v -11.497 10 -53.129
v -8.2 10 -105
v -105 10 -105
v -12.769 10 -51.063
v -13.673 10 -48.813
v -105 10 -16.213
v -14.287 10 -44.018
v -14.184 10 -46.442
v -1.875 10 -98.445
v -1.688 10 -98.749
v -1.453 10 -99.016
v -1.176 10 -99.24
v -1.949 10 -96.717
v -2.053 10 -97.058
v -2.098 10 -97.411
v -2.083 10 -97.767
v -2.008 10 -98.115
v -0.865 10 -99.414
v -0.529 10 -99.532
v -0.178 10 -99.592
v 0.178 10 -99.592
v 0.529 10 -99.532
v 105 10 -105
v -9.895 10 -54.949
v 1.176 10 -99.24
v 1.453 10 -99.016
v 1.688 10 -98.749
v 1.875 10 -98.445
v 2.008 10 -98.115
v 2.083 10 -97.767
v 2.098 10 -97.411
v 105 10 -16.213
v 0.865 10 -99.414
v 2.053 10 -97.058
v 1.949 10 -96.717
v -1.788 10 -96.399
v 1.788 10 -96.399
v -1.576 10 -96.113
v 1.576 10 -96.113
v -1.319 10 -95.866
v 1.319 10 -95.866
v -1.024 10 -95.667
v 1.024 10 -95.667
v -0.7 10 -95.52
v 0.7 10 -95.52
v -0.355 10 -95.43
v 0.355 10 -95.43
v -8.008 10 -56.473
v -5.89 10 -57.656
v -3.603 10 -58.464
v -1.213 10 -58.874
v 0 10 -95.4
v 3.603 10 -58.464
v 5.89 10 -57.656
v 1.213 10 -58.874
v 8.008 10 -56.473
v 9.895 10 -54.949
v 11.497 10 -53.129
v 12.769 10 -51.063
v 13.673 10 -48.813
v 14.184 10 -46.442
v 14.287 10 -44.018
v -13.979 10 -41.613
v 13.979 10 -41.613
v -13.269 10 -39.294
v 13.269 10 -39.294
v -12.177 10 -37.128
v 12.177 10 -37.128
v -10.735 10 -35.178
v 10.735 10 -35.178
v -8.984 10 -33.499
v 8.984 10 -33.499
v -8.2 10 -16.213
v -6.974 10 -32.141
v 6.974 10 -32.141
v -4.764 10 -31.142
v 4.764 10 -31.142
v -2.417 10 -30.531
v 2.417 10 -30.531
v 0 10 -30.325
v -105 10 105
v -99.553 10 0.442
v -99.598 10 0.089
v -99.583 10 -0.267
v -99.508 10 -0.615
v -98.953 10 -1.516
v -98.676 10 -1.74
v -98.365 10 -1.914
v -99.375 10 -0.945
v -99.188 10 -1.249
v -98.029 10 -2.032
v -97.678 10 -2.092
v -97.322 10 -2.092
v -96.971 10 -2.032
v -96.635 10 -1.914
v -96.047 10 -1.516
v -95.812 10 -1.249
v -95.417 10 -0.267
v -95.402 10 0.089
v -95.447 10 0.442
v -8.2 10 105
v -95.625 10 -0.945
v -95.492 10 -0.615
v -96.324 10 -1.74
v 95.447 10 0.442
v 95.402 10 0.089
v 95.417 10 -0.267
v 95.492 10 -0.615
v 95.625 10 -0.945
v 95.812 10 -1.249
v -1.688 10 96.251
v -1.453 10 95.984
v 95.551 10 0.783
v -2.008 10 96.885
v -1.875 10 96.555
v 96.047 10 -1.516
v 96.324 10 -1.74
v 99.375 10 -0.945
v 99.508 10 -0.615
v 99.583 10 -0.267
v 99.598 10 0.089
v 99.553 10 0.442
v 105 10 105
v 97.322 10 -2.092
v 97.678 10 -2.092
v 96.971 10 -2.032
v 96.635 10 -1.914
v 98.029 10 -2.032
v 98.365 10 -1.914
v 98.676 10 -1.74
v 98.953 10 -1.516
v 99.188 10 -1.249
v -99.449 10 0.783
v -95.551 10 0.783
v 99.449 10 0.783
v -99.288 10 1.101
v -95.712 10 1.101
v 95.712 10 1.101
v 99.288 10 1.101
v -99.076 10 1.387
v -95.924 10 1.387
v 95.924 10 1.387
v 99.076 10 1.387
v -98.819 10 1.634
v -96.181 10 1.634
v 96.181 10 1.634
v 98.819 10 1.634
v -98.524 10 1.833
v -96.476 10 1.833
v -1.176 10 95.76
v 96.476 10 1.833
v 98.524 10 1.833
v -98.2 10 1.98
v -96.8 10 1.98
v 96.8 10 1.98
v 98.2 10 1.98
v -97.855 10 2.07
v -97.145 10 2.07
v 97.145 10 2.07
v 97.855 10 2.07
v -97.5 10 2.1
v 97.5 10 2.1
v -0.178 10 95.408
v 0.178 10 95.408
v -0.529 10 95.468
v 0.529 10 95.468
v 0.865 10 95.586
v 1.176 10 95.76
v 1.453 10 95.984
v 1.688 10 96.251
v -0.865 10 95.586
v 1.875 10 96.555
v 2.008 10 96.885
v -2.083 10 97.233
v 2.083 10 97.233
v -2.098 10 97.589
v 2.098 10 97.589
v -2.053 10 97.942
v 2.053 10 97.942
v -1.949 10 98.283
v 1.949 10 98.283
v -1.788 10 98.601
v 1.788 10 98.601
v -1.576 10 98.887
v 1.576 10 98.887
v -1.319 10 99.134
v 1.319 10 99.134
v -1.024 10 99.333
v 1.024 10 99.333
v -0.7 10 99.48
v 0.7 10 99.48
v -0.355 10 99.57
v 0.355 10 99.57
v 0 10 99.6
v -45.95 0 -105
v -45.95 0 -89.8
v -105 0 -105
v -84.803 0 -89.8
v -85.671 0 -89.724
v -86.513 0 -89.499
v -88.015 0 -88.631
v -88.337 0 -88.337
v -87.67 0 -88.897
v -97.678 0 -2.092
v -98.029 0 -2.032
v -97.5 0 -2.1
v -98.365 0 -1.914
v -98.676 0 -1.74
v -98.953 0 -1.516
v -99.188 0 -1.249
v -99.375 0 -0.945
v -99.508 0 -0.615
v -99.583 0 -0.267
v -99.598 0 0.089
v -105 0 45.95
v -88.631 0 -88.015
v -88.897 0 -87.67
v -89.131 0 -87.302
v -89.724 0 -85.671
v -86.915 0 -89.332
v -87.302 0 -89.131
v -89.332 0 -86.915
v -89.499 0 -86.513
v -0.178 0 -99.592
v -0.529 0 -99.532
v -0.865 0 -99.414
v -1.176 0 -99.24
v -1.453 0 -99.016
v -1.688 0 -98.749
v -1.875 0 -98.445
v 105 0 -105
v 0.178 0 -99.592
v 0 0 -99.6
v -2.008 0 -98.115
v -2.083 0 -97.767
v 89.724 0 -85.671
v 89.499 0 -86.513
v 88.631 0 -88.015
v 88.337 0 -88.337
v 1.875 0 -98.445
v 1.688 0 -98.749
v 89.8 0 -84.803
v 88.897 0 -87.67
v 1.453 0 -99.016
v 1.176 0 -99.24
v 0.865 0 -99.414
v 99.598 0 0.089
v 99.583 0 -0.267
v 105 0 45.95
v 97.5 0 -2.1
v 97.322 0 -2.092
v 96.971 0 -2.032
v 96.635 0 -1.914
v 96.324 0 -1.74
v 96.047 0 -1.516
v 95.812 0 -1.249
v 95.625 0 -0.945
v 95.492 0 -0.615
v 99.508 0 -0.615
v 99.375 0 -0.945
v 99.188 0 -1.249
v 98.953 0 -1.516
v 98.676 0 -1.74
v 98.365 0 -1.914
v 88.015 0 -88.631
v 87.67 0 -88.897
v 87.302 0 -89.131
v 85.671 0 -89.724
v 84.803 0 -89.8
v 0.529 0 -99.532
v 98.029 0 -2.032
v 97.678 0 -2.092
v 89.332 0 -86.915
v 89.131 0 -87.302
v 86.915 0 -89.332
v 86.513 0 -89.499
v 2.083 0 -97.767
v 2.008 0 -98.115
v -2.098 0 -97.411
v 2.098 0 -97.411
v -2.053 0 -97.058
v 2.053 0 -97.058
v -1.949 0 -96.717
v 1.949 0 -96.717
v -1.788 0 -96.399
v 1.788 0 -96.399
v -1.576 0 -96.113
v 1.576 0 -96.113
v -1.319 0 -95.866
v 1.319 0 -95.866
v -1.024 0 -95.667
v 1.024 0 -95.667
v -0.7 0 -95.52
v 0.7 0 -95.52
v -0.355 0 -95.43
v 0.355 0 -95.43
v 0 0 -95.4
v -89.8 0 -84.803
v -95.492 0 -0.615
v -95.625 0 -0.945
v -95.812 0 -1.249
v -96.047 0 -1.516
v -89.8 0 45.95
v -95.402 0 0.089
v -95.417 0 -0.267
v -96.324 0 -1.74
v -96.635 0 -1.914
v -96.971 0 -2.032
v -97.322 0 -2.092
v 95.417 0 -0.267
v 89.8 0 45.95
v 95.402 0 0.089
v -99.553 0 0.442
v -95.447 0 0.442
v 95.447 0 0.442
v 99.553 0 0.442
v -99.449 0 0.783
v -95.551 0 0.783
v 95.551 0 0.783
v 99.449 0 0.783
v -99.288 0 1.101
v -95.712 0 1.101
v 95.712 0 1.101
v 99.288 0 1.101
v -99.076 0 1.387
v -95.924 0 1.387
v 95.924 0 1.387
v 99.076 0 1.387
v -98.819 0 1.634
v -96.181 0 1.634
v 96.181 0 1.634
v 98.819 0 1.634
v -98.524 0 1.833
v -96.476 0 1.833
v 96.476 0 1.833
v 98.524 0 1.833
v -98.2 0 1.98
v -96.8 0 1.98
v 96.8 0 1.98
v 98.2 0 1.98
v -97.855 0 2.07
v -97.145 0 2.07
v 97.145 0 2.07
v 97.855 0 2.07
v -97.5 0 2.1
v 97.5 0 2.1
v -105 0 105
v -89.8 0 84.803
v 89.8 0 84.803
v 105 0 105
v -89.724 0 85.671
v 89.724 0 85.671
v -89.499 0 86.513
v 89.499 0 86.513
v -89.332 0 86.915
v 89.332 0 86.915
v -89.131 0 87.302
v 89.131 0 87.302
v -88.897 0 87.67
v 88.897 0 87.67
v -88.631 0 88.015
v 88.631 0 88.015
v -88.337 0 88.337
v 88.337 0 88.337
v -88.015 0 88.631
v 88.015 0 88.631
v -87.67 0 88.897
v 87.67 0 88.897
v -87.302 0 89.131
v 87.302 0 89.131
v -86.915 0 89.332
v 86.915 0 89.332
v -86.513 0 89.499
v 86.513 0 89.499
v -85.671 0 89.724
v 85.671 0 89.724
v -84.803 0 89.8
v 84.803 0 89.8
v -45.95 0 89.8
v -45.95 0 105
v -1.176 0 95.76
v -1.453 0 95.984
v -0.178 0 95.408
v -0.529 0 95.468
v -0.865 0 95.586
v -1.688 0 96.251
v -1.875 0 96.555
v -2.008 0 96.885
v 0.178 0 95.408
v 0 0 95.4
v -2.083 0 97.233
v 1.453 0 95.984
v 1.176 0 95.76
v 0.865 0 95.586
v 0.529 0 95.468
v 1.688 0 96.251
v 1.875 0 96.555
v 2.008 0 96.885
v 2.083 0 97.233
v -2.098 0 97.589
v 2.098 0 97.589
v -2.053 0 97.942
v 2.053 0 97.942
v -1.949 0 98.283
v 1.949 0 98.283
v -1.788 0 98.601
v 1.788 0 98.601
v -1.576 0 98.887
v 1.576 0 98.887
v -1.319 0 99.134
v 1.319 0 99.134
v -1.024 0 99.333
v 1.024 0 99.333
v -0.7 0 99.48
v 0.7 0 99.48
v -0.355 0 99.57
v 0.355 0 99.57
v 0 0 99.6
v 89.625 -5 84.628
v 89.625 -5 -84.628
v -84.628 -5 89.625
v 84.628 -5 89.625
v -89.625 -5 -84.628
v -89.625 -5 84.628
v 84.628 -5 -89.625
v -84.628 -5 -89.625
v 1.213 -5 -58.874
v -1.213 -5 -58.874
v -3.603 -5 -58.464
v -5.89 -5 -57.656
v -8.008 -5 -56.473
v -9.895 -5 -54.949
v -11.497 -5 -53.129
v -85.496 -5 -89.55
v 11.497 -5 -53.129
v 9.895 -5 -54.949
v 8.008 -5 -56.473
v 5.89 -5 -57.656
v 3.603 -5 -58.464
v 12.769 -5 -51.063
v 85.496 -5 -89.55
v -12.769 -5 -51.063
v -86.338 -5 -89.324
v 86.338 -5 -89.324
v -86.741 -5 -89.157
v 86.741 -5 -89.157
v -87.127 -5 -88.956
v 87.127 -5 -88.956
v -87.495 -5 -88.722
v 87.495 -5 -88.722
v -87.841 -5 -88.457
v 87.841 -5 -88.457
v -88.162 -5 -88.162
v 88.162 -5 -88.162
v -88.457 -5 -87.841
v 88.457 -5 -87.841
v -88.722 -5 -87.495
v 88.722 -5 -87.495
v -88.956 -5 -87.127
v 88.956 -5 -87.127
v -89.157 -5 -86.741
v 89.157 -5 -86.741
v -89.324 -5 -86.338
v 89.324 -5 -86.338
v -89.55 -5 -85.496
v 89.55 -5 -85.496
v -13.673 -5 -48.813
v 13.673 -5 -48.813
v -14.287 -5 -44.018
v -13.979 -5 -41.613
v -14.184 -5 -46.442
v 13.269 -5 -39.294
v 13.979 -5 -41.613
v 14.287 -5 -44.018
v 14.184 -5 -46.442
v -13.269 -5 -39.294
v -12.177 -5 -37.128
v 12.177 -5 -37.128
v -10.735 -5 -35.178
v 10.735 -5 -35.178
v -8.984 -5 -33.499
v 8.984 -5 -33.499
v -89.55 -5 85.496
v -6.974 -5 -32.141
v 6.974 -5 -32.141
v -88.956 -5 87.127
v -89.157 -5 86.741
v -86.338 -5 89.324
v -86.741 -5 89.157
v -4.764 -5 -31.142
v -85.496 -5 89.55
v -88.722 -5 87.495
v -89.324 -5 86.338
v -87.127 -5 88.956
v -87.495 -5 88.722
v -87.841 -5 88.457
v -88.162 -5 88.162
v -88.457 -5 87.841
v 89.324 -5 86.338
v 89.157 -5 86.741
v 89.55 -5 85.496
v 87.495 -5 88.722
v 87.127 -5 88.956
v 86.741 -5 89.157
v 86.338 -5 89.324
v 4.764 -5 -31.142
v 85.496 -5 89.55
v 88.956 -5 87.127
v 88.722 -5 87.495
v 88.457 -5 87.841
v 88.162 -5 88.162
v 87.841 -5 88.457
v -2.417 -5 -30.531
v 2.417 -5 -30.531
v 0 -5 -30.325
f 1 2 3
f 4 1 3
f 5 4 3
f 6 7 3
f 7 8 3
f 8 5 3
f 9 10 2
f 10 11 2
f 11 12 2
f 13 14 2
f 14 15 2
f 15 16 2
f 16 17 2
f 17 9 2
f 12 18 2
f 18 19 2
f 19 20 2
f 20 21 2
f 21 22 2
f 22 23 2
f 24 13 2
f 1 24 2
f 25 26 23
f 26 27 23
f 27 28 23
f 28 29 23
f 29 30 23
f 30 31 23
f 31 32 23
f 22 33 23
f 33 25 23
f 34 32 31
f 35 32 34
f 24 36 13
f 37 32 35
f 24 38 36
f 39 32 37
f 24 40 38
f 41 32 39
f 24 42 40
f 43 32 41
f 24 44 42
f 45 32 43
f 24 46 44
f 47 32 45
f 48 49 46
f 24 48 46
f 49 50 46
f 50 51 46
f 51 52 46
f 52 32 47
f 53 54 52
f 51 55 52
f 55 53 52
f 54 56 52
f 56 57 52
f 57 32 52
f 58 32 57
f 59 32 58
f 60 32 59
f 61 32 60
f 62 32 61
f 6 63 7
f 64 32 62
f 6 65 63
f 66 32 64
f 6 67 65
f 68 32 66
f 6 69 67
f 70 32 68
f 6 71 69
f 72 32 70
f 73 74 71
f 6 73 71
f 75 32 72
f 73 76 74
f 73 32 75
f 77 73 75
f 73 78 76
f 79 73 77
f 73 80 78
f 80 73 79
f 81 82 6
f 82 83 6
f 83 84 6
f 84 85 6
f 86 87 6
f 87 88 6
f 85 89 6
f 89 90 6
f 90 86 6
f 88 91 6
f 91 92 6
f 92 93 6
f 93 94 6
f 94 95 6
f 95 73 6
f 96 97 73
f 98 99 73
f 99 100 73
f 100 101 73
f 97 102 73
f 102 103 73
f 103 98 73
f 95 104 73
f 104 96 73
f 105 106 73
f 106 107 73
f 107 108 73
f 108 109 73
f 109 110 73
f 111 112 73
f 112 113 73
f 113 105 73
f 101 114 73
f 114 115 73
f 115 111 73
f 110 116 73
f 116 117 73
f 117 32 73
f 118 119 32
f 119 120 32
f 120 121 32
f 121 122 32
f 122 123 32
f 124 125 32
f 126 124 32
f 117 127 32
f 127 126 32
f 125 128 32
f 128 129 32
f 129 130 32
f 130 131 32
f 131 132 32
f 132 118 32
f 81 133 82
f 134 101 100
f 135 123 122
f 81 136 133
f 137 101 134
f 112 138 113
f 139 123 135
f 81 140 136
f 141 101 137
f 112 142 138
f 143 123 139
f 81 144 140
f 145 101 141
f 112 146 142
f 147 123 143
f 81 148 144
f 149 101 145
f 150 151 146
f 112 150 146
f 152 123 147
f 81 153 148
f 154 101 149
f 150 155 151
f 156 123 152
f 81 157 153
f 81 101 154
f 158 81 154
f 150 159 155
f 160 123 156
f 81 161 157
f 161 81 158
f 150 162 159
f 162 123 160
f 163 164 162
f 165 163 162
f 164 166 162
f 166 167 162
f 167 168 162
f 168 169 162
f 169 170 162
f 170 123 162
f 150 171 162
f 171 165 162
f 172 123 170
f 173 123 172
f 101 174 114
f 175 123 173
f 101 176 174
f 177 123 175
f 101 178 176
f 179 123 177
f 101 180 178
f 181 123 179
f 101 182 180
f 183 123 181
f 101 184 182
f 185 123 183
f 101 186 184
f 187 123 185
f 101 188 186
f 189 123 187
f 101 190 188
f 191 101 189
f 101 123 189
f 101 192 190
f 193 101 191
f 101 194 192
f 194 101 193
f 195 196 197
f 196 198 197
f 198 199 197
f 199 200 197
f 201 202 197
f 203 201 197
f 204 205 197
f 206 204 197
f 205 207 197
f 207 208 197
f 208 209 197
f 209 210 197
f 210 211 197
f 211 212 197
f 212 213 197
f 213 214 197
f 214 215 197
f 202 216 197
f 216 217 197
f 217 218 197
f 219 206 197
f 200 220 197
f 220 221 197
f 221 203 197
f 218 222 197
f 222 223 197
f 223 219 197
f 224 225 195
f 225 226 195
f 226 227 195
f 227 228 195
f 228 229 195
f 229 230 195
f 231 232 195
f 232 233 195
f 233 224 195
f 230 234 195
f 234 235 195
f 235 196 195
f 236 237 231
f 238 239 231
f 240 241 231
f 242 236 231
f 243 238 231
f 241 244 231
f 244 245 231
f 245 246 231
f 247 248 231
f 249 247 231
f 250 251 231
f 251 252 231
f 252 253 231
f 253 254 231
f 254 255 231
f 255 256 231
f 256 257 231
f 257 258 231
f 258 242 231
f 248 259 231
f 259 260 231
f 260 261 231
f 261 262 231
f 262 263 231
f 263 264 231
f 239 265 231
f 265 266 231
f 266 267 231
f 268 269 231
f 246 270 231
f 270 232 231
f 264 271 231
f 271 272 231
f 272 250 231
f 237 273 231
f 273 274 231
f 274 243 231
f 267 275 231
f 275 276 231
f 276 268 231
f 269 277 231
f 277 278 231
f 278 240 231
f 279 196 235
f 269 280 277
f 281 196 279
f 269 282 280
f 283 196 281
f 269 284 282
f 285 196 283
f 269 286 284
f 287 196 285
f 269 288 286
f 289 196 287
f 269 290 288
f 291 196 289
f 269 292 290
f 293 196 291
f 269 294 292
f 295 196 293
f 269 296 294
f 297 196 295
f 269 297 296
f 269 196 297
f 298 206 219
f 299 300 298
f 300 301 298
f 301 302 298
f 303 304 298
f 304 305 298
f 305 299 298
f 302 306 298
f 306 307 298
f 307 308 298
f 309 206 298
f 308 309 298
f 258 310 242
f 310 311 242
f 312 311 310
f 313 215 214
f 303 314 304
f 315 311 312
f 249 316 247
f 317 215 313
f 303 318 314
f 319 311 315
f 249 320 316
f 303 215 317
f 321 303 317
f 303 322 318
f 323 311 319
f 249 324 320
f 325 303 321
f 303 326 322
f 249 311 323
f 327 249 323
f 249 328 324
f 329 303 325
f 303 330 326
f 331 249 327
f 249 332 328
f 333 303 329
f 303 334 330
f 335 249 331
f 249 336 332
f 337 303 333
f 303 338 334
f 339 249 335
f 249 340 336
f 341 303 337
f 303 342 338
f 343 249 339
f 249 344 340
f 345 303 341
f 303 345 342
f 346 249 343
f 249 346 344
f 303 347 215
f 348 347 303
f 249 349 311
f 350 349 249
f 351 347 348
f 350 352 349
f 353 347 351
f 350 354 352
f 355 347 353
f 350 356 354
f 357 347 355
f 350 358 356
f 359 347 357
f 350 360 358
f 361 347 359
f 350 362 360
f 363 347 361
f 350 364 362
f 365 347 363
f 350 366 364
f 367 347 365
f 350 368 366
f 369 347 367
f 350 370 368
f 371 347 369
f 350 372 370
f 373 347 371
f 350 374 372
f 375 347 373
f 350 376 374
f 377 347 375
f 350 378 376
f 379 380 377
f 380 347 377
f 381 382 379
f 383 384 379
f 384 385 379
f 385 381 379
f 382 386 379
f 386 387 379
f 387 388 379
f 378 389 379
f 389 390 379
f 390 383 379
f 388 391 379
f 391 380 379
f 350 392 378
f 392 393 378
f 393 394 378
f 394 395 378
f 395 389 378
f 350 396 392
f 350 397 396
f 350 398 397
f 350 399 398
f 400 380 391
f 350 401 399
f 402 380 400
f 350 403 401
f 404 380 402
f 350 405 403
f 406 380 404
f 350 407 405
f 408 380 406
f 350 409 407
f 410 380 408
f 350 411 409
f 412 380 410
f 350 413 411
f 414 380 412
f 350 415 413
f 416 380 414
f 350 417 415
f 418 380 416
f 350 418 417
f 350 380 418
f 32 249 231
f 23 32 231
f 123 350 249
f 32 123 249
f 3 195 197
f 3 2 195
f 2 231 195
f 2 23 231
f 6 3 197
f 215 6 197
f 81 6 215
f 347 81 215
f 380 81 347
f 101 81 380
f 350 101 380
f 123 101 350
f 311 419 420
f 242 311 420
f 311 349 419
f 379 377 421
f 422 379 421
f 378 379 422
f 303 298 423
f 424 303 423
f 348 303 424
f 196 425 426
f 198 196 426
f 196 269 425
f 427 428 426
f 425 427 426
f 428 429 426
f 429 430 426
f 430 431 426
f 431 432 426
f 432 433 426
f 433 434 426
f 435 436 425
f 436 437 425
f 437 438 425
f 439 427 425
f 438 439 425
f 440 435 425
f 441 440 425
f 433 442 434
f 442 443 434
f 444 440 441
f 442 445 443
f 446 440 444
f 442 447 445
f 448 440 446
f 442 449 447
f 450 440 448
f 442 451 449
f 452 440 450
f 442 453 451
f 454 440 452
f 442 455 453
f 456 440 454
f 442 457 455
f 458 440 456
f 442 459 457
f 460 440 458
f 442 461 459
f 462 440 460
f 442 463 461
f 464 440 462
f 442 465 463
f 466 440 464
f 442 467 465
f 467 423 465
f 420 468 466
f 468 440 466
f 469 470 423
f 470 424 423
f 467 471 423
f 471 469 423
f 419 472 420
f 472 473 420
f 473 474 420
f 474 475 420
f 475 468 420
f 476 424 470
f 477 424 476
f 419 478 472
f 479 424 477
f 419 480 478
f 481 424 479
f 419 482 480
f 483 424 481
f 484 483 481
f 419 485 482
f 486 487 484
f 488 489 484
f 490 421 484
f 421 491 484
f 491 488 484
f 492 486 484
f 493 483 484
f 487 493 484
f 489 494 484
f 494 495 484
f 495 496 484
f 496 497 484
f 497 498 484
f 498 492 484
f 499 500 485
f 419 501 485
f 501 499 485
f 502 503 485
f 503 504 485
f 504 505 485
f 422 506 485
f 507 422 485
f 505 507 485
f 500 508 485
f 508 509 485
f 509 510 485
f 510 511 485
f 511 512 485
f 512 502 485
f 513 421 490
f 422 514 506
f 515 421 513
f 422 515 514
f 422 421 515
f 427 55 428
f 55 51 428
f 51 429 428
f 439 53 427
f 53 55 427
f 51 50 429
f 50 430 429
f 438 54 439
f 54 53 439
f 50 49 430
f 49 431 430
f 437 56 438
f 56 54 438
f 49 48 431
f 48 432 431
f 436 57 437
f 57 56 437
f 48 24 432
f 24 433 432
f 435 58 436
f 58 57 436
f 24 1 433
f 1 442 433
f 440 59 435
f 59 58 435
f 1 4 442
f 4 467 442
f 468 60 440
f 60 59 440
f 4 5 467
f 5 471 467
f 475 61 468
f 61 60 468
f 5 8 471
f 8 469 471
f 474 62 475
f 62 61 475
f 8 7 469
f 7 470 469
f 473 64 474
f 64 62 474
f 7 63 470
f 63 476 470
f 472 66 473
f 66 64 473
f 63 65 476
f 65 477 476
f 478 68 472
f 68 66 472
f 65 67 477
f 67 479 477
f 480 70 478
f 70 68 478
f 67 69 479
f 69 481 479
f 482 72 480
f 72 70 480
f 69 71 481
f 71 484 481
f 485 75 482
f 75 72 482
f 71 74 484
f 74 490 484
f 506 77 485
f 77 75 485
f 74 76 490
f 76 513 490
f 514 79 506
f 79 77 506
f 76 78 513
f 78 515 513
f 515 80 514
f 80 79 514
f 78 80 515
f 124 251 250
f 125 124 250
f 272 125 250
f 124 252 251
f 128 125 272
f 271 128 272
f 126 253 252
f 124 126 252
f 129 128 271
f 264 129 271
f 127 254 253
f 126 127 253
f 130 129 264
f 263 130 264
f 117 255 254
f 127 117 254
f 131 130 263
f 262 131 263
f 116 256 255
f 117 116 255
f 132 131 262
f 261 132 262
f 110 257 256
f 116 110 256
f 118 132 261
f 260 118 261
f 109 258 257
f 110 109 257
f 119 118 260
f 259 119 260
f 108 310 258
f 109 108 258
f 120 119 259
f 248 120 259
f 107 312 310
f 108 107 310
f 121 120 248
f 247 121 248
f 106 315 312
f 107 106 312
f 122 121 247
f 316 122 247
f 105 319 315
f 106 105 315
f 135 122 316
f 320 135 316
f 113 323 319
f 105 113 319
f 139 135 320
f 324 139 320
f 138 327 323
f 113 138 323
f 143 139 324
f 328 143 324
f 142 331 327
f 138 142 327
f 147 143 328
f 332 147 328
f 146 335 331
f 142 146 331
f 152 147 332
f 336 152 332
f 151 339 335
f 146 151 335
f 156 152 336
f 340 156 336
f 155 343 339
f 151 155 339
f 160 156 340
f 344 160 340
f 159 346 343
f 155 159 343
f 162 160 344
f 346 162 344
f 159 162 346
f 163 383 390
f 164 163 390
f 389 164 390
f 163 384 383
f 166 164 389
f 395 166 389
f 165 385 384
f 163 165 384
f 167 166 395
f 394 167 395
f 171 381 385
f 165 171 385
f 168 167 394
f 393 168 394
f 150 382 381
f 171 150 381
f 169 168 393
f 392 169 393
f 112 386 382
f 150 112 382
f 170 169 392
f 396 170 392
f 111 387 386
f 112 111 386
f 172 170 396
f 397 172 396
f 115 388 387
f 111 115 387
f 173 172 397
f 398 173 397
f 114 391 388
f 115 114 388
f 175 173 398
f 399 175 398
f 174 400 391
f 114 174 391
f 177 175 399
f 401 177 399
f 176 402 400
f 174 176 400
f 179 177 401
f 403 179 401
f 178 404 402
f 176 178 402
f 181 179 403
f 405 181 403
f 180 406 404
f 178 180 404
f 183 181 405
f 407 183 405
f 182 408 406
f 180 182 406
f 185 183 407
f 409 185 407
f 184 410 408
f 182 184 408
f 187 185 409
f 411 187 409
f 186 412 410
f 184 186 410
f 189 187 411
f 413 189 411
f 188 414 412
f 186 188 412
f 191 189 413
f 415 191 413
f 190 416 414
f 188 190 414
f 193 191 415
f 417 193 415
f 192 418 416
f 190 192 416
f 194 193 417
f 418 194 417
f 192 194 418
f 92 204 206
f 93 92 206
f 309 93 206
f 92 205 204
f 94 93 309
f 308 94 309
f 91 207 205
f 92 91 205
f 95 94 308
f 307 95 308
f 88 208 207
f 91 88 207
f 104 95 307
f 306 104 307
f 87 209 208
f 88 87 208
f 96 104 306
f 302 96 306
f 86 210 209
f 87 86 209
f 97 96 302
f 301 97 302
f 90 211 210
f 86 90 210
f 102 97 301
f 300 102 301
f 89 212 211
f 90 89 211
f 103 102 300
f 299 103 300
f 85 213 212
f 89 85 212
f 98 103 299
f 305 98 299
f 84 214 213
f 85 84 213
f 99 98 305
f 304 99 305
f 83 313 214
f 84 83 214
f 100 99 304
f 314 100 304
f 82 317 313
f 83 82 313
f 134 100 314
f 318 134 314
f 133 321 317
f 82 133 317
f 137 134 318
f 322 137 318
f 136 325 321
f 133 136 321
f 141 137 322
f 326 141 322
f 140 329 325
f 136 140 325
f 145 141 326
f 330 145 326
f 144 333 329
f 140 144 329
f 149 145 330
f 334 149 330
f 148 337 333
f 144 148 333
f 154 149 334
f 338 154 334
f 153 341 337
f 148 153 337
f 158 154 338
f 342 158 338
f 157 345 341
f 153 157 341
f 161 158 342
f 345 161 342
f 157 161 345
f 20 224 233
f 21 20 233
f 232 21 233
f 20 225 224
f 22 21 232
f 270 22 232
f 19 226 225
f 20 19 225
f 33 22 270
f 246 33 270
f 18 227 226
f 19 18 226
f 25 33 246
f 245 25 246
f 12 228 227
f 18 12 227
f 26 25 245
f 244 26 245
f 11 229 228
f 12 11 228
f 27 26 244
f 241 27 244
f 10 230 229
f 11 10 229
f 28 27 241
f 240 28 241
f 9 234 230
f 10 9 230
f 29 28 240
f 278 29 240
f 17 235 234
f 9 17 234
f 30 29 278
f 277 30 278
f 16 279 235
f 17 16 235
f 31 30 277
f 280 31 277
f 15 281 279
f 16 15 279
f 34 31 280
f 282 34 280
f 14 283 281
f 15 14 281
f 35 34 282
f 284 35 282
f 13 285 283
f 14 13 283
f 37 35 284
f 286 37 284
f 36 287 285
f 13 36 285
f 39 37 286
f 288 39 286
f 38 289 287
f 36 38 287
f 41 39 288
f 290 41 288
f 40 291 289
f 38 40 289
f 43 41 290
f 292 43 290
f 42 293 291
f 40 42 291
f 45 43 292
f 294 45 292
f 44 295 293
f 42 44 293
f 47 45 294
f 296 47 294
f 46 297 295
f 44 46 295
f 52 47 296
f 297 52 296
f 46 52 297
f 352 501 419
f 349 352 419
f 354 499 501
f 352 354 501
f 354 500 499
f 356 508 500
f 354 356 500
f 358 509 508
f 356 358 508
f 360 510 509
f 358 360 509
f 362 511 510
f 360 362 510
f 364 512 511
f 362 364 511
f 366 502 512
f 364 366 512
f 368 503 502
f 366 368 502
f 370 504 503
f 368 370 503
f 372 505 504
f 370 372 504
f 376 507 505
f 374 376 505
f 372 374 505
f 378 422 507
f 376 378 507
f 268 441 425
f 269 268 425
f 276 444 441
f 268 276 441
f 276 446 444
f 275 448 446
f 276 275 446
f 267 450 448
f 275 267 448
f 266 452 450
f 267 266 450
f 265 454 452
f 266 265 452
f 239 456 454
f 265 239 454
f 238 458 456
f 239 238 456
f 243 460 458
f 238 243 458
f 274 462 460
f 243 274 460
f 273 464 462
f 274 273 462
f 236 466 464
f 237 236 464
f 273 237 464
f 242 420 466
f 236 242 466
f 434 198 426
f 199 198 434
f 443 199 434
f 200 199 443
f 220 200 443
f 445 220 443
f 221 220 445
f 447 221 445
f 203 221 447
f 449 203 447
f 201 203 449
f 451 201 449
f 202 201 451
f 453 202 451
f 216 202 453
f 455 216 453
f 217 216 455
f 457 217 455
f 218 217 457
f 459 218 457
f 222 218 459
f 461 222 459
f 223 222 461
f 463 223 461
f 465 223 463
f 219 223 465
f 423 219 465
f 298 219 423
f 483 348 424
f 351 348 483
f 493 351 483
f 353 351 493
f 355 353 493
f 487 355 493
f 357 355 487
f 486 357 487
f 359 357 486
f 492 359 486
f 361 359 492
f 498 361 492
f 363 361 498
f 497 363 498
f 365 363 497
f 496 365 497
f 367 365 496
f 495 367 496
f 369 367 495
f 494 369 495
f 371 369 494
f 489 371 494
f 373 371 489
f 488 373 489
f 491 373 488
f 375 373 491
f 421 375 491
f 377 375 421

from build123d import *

# Parameters (mm, degrees)
SKETCH2_W           = 210
SKETCH2_H           = 210
BOSS_EXTRUDE1_DEPTH = 10
SKETCH3_W           = 179.6
SKETCH3_H           = 179.6
BOSS_EXTRUDE2_DEPTH = 5
BOSS_EXTRUDE2_TAPER = 2
SKETCH4_R           = 14.3
CUT_EXTRUDE1_DEPTH  = 15
SKETCH6_R           = 2.1
CUT_EXTRUDE2_DEPTH  = 10
FILLET1_R           = 5


with BuildPart() as part:
    # Sketch2 → Boss-Extrude1 (new body)
    with BuildSketch(Plane(origin=(0, 0, 0), x_dir=(1, 0, 0), z_dir=(0, 1, 0))):
        Rectangle(SKETCH2_W, SKETCH2_H)
    extrude(amount=BOSS_EXTRUDE1_DEPTH)

    # Sketch3 → Boss-Extrude2 (add)
    with BuildSketch(Plane.XZ):
        Rectangle(SKETCH3_W, SKETCH3_H)
    extrude(amount=BOSS_EXTRUDE2_DEPTH, taper=BOSS_EXTRUDE2_TAPER)

    # Sketch4 → Cut-Extrude1 (cut)
    with BuildSketch(Plane(origin=(0, 10, 0), x_dir=(1, 0, 0), z_dir=(0, 1, 0))):
        with Locations((0, 44.625396153)):
            Circle(SKETCH4_R)
    extrude(amount=-CUT_EXTRUDE1_DEPTH, mode=Mode.SUBTRACT)

    # Sketch6 → Cut-Extrude2 (cut)
    with BuildSketch(Plane(origin=(0, 10, 0), x_dir=(1, 0, 0), z_dir=(0, 1, 0))):
        with Locations((0, 97.5)):
            Circle(SKETCH6_R)
        with Locations((-97.5, 0)):
            Circle(SKETCH6_R)
        with Locations((0, -97.5)):
            Circle(SKETCH6_R)
        with Locations((97.5, 0)):
            Circle(SKETCH6_R)
        with Locations((0, 97.5)):
            Circle(SKETCH6_R)
        with Locations((0, 97.5)):
            Circle(SKETCH6_R)
        with Locations((0, 97.5)):
            Circle(SKETCH6_R)
    extrude(amount=-CUT_EXTRUDE2_DEPTH, mode=Mode.SUBTRACT)

    # Fillet1
    fillet1_edges = [part.edges().sort_by_distance(p)[0] for p in [
        (89.712698076, -2.5, -89.712698076),
        (89.712698076, -2.5, 89.712698076),
        (-89.712698076, -2.5, 89.712698076),
        (-89.712698076, -2.5, -89.712698076),
    ]]
    fillet(fillet1_edges, radius=FILLET1_R)


solid = part.part
